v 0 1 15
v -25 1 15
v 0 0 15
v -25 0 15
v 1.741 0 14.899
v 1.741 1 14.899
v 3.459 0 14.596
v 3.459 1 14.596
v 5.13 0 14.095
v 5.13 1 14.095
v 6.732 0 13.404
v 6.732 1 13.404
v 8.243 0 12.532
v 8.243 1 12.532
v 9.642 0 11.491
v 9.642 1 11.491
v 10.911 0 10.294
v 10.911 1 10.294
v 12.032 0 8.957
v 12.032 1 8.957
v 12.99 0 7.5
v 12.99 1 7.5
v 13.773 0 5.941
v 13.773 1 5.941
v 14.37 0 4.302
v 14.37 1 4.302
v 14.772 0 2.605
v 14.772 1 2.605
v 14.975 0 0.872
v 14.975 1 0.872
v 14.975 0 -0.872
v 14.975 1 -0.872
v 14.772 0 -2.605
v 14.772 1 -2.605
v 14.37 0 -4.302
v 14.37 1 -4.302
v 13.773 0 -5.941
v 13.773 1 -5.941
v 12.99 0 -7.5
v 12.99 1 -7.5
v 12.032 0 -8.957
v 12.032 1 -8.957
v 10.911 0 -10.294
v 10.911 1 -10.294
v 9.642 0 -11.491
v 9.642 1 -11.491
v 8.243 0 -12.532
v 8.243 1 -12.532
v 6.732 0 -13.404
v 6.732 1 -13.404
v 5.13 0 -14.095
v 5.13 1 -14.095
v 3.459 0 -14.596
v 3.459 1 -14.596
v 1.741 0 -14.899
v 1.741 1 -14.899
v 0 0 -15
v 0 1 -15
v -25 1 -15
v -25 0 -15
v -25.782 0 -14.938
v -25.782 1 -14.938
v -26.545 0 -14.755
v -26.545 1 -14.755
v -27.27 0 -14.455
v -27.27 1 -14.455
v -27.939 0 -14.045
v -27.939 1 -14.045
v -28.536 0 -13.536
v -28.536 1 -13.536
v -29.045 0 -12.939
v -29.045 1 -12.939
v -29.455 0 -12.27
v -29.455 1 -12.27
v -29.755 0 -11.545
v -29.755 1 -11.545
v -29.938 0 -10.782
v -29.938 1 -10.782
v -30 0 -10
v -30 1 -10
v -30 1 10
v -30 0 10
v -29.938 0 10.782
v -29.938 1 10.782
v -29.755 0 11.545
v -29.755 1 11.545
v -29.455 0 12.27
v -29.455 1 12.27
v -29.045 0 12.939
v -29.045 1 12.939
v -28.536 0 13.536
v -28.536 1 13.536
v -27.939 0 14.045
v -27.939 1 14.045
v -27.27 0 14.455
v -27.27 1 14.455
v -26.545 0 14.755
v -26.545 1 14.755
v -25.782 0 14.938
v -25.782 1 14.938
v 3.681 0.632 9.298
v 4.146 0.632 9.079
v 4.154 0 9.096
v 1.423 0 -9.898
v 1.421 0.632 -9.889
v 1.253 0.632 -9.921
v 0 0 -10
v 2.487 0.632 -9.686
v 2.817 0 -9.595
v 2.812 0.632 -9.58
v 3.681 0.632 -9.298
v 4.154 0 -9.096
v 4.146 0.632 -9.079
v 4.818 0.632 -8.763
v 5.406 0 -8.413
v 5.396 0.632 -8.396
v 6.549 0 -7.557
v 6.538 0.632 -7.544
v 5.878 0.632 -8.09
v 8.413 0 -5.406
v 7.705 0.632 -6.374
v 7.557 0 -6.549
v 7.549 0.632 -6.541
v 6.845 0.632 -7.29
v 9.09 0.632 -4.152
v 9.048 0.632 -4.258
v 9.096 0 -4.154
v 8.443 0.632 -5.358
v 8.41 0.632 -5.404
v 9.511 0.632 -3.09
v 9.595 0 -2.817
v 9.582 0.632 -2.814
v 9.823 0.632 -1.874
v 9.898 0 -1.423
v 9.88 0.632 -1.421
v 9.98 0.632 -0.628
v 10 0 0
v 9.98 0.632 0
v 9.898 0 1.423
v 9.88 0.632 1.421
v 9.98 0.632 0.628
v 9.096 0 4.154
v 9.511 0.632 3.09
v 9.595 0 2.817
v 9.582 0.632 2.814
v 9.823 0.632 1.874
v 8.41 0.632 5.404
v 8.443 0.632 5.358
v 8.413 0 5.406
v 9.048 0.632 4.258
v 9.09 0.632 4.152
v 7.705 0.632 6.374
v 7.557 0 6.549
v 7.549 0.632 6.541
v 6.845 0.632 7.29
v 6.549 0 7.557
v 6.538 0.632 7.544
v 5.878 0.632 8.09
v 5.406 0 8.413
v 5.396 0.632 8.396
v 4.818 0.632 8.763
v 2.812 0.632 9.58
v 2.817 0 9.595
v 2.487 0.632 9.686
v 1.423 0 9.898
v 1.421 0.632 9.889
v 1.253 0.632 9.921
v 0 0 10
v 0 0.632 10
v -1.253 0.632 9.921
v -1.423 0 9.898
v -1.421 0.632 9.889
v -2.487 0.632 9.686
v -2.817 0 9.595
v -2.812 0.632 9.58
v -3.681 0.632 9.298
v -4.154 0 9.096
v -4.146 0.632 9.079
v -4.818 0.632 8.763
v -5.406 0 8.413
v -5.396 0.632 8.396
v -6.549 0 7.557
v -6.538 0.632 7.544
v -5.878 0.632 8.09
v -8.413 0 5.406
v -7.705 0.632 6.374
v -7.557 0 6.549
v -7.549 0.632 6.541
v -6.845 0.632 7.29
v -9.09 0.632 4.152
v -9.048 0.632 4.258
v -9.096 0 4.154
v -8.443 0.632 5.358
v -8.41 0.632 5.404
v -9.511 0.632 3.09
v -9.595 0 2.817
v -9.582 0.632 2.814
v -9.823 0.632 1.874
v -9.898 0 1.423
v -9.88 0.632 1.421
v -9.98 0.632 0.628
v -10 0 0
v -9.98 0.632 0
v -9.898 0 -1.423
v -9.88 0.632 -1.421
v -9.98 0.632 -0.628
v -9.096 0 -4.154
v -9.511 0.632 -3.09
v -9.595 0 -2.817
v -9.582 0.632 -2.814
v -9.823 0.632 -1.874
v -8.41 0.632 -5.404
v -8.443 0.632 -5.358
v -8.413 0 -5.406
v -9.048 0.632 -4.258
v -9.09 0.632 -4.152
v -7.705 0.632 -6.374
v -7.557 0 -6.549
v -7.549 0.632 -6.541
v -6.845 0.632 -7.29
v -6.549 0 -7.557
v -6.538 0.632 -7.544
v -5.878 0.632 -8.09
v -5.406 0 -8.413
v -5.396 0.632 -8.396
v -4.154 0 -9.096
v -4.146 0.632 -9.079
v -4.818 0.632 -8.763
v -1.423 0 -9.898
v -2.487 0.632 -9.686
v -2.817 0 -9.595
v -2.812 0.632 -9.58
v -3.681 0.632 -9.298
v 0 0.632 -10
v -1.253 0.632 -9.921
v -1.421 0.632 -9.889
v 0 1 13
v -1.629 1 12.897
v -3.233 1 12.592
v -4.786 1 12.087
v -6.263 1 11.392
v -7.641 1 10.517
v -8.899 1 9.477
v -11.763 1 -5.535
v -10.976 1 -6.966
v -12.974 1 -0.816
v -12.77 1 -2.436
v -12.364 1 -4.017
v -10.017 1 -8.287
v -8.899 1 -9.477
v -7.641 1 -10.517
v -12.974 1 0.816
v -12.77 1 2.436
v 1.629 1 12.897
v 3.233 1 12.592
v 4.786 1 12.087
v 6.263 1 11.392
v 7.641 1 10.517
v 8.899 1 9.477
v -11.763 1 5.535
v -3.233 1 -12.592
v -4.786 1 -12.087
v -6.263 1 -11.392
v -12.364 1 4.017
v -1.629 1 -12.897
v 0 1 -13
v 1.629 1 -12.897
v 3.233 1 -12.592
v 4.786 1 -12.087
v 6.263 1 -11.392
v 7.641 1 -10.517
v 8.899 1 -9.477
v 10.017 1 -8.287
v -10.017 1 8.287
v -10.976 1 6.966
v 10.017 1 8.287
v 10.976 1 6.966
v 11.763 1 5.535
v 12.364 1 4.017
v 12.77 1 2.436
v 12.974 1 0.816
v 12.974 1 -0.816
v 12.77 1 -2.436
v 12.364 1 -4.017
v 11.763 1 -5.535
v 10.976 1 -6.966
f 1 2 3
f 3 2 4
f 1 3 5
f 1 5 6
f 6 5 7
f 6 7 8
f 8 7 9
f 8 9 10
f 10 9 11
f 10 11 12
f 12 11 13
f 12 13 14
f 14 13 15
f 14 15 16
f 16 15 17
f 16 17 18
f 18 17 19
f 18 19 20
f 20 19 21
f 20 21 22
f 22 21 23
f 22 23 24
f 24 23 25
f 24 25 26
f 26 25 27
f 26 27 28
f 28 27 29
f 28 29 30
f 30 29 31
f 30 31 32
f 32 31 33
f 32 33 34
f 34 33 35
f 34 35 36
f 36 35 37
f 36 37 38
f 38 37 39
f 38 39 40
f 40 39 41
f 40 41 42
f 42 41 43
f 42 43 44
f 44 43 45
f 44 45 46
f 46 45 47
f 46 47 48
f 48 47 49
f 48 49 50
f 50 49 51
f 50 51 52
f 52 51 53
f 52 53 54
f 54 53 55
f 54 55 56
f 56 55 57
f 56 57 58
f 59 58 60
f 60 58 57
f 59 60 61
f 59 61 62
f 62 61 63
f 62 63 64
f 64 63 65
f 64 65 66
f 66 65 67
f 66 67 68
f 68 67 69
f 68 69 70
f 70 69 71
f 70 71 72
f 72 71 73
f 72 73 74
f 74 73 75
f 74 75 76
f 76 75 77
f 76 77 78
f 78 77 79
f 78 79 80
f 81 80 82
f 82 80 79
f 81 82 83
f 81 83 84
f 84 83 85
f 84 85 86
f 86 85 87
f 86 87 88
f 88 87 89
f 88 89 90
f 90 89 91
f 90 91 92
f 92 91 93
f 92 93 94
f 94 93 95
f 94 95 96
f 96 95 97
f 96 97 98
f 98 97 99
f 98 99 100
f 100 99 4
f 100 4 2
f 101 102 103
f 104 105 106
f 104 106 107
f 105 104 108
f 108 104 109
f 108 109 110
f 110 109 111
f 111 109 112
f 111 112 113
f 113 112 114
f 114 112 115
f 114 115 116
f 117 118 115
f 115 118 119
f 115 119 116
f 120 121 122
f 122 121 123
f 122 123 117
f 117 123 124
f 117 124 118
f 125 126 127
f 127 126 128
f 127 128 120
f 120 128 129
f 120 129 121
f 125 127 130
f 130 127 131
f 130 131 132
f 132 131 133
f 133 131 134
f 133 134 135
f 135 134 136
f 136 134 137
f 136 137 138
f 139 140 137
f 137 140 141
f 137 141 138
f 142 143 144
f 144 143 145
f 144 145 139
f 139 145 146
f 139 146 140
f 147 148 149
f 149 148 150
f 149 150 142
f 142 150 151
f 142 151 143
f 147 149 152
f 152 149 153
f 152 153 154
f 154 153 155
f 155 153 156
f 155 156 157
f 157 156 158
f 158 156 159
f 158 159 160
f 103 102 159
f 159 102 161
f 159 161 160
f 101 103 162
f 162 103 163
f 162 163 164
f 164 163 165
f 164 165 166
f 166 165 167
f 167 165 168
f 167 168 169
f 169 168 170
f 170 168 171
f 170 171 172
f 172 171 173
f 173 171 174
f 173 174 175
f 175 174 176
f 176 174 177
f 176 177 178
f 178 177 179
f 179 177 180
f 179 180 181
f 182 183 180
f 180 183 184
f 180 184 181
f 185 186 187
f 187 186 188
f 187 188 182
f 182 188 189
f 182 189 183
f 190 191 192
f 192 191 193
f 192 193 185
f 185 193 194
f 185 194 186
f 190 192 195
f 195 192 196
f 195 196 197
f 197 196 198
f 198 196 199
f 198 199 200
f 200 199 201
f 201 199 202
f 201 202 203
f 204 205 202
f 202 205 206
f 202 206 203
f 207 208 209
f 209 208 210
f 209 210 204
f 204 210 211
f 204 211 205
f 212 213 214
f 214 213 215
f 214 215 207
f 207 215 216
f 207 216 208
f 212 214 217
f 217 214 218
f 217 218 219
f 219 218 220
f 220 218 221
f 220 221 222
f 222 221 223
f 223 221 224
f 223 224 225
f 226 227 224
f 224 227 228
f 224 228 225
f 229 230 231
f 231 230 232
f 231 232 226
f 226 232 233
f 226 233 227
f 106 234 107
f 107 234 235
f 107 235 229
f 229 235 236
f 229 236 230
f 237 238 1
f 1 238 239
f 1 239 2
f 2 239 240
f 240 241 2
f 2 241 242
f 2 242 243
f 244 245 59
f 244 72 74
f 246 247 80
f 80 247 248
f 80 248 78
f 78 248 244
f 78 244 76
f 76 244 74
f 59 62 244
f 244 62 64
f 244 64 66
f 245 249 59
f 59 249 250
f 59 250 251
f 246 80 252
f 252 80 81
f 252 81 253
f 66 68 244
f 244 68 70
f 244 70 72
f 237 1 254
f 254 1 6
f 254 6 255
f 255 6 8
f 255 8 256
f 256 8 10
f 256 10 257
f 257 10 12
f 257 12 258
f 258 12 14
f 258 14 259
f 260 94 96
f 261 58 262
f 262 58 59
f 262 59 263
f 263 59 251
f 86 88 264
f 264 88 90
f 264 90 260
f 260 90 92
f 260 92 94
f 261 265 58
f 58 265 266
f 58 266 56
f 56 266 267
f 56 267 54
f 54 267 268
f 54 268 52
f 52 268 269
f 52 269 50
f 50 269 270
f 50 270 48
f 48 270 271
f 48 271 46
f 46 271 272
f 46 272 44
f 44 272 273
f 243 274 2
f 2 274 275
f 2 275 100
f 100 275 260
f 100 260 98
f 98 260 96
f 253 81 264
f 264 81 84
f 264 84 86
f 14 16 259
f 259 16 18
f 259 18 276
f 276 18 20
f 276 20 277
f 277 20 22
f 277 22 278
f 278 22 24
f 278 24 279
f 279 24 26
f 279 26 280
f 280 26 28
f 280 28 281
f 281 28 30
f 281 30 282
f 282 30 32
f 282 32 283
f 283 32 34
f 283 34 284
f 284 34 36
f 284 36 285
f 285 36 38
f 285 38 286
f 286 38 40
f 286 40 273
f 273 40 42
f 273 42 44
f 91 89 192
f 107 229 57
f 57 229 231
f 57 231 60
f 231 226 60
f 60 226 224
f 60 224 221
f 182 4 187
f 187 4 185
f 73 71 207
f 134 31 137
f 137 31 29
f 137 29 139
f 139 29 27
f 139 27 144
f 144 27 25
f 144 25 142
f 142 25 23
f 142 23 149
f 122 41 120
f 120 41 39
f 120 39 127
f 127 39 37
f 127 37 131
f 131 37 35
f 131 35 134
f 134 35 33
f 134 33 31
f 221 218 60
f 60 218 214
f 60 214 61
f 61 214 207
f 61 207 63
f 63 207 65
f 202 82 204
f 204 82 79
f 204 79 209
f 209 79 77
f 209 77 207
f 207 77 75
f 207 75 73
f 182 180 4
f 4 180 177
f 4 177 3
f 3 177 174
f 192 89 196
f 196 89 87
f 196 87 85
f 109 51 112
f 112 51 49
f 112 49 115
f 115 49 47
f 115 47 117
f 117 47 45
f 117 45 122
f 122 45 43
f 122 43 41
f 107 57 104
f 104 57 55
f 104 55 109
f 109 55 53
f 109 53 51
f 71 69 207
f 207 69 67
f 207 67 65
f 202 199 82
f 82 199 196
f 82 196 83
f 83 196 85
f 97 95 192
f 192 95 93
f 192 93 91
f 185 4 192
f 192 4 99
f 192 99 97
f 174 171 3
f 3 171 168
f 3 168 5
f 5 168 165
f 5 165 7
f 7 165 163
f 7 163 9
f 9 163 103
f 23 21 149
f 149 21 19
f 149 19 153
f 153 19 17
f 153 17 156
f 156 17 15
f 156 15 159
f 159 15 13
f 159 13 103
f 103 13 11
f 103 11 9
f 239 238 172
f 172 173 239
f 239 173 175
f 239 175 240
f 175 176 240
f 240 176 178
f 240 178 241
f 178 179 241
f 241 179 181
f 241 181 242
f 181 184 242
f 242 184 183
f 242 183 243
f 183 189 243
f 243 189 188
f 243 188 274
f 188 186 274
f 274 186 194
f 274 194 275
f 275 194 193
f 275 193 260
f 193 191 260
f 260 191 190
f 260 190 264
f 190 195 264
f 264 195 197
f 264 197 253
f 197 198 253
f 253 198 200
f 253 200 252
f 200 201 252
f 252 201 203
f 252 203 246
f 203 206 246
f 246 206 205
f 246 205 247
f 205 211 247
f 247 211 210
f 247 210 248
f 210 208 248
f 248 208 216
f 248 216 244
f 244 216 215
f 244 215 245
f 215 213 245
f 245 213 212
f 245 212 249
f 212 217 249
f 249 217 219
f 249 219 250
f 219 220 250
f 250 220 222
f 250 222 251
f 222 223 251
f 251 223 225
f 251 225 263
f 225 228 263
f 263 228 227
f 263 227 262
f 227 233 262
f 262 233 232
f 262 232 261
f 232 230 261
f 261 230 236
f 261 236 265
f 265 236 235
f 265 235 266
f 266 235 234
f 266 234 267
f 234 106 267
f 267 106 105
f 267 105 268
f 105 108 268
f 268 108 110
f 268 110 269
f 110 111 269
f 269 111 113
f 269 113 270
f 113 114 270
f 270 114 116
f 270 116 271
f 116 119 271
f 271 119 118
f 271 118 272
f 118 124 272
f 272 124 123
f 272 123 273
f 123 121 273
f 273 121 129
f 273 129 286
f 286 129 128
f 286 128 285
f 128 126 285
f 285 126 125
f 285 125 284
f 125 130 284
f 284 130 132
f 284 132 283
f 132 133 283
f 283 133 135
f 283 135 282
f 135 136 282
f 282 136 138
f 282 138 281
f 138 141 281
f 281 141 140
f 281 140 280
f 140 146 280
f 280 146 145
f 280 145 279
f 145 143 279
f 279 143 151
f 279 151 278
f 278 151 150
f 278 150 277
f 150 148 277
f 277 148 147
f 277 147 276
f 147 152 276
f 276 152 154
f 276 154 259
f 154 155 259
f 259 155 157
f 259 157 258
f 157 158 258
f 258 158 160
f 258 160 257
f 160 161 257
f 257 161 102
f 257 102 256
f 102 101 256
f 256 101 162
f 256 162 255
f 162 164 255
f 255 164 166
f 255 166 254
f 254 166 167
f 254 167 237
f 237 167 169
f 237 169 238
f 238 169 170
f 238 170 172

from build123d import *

# Parameters (mm, degrees)
SKETCH1_R           = 10
BOSS_EXTRUDE1_DEPTH = 1
CHAMFER1_SIZE       = 3
CHAMFER1_SIZE2      = 0.368353683


with BuildPart() as part:
    # Sketch1 → Boss-Extrude1 (new body)
    with BuildSketch(Plane(origin=(0, 0, 0), x_dir=(1, 0, 0), z_dir=(0, 1, 0))):
        with BuildLine():
            Line((0, 15), (-25, 15))
            ThreePointArc((-25, 15), (-28.535533906, 13.535533906), (-30, 10))
            Line((-30, 10), (-30, -10))
            ThreePointArc((-30, -10), (-28.535533906, -13.535533906), (-25, -15))
            Line((-25, -15), (0, -15))
            ThreePointArc((0, -15), (15, 0), (0, 15))
        make_face()
        with Locations(Location((0, 0, 0), (0, 0, 270))):
            Circle(SKETCH1_R, mode=Mode.SUBTRACT)
    extrude(amount=BOSS_EXTRUDE1_DEPTH)

    # Chamfer1
    chamfer1_edges = [part.edges().sort_by_distance(p)[0] for p in [
        (0, 1, -10),
    ]]
    chamfer1_side = [part.faces().sort_by_distance(p)[0] for p in [
        (-11.782026839, 1, 0),
    ]]
    chamfer(chamfer1_edges, length=CHAMFER1_SIZE, length2=CHAMFER1_SIZE2, reference=chamfer1_side[0])


solid = part.part
